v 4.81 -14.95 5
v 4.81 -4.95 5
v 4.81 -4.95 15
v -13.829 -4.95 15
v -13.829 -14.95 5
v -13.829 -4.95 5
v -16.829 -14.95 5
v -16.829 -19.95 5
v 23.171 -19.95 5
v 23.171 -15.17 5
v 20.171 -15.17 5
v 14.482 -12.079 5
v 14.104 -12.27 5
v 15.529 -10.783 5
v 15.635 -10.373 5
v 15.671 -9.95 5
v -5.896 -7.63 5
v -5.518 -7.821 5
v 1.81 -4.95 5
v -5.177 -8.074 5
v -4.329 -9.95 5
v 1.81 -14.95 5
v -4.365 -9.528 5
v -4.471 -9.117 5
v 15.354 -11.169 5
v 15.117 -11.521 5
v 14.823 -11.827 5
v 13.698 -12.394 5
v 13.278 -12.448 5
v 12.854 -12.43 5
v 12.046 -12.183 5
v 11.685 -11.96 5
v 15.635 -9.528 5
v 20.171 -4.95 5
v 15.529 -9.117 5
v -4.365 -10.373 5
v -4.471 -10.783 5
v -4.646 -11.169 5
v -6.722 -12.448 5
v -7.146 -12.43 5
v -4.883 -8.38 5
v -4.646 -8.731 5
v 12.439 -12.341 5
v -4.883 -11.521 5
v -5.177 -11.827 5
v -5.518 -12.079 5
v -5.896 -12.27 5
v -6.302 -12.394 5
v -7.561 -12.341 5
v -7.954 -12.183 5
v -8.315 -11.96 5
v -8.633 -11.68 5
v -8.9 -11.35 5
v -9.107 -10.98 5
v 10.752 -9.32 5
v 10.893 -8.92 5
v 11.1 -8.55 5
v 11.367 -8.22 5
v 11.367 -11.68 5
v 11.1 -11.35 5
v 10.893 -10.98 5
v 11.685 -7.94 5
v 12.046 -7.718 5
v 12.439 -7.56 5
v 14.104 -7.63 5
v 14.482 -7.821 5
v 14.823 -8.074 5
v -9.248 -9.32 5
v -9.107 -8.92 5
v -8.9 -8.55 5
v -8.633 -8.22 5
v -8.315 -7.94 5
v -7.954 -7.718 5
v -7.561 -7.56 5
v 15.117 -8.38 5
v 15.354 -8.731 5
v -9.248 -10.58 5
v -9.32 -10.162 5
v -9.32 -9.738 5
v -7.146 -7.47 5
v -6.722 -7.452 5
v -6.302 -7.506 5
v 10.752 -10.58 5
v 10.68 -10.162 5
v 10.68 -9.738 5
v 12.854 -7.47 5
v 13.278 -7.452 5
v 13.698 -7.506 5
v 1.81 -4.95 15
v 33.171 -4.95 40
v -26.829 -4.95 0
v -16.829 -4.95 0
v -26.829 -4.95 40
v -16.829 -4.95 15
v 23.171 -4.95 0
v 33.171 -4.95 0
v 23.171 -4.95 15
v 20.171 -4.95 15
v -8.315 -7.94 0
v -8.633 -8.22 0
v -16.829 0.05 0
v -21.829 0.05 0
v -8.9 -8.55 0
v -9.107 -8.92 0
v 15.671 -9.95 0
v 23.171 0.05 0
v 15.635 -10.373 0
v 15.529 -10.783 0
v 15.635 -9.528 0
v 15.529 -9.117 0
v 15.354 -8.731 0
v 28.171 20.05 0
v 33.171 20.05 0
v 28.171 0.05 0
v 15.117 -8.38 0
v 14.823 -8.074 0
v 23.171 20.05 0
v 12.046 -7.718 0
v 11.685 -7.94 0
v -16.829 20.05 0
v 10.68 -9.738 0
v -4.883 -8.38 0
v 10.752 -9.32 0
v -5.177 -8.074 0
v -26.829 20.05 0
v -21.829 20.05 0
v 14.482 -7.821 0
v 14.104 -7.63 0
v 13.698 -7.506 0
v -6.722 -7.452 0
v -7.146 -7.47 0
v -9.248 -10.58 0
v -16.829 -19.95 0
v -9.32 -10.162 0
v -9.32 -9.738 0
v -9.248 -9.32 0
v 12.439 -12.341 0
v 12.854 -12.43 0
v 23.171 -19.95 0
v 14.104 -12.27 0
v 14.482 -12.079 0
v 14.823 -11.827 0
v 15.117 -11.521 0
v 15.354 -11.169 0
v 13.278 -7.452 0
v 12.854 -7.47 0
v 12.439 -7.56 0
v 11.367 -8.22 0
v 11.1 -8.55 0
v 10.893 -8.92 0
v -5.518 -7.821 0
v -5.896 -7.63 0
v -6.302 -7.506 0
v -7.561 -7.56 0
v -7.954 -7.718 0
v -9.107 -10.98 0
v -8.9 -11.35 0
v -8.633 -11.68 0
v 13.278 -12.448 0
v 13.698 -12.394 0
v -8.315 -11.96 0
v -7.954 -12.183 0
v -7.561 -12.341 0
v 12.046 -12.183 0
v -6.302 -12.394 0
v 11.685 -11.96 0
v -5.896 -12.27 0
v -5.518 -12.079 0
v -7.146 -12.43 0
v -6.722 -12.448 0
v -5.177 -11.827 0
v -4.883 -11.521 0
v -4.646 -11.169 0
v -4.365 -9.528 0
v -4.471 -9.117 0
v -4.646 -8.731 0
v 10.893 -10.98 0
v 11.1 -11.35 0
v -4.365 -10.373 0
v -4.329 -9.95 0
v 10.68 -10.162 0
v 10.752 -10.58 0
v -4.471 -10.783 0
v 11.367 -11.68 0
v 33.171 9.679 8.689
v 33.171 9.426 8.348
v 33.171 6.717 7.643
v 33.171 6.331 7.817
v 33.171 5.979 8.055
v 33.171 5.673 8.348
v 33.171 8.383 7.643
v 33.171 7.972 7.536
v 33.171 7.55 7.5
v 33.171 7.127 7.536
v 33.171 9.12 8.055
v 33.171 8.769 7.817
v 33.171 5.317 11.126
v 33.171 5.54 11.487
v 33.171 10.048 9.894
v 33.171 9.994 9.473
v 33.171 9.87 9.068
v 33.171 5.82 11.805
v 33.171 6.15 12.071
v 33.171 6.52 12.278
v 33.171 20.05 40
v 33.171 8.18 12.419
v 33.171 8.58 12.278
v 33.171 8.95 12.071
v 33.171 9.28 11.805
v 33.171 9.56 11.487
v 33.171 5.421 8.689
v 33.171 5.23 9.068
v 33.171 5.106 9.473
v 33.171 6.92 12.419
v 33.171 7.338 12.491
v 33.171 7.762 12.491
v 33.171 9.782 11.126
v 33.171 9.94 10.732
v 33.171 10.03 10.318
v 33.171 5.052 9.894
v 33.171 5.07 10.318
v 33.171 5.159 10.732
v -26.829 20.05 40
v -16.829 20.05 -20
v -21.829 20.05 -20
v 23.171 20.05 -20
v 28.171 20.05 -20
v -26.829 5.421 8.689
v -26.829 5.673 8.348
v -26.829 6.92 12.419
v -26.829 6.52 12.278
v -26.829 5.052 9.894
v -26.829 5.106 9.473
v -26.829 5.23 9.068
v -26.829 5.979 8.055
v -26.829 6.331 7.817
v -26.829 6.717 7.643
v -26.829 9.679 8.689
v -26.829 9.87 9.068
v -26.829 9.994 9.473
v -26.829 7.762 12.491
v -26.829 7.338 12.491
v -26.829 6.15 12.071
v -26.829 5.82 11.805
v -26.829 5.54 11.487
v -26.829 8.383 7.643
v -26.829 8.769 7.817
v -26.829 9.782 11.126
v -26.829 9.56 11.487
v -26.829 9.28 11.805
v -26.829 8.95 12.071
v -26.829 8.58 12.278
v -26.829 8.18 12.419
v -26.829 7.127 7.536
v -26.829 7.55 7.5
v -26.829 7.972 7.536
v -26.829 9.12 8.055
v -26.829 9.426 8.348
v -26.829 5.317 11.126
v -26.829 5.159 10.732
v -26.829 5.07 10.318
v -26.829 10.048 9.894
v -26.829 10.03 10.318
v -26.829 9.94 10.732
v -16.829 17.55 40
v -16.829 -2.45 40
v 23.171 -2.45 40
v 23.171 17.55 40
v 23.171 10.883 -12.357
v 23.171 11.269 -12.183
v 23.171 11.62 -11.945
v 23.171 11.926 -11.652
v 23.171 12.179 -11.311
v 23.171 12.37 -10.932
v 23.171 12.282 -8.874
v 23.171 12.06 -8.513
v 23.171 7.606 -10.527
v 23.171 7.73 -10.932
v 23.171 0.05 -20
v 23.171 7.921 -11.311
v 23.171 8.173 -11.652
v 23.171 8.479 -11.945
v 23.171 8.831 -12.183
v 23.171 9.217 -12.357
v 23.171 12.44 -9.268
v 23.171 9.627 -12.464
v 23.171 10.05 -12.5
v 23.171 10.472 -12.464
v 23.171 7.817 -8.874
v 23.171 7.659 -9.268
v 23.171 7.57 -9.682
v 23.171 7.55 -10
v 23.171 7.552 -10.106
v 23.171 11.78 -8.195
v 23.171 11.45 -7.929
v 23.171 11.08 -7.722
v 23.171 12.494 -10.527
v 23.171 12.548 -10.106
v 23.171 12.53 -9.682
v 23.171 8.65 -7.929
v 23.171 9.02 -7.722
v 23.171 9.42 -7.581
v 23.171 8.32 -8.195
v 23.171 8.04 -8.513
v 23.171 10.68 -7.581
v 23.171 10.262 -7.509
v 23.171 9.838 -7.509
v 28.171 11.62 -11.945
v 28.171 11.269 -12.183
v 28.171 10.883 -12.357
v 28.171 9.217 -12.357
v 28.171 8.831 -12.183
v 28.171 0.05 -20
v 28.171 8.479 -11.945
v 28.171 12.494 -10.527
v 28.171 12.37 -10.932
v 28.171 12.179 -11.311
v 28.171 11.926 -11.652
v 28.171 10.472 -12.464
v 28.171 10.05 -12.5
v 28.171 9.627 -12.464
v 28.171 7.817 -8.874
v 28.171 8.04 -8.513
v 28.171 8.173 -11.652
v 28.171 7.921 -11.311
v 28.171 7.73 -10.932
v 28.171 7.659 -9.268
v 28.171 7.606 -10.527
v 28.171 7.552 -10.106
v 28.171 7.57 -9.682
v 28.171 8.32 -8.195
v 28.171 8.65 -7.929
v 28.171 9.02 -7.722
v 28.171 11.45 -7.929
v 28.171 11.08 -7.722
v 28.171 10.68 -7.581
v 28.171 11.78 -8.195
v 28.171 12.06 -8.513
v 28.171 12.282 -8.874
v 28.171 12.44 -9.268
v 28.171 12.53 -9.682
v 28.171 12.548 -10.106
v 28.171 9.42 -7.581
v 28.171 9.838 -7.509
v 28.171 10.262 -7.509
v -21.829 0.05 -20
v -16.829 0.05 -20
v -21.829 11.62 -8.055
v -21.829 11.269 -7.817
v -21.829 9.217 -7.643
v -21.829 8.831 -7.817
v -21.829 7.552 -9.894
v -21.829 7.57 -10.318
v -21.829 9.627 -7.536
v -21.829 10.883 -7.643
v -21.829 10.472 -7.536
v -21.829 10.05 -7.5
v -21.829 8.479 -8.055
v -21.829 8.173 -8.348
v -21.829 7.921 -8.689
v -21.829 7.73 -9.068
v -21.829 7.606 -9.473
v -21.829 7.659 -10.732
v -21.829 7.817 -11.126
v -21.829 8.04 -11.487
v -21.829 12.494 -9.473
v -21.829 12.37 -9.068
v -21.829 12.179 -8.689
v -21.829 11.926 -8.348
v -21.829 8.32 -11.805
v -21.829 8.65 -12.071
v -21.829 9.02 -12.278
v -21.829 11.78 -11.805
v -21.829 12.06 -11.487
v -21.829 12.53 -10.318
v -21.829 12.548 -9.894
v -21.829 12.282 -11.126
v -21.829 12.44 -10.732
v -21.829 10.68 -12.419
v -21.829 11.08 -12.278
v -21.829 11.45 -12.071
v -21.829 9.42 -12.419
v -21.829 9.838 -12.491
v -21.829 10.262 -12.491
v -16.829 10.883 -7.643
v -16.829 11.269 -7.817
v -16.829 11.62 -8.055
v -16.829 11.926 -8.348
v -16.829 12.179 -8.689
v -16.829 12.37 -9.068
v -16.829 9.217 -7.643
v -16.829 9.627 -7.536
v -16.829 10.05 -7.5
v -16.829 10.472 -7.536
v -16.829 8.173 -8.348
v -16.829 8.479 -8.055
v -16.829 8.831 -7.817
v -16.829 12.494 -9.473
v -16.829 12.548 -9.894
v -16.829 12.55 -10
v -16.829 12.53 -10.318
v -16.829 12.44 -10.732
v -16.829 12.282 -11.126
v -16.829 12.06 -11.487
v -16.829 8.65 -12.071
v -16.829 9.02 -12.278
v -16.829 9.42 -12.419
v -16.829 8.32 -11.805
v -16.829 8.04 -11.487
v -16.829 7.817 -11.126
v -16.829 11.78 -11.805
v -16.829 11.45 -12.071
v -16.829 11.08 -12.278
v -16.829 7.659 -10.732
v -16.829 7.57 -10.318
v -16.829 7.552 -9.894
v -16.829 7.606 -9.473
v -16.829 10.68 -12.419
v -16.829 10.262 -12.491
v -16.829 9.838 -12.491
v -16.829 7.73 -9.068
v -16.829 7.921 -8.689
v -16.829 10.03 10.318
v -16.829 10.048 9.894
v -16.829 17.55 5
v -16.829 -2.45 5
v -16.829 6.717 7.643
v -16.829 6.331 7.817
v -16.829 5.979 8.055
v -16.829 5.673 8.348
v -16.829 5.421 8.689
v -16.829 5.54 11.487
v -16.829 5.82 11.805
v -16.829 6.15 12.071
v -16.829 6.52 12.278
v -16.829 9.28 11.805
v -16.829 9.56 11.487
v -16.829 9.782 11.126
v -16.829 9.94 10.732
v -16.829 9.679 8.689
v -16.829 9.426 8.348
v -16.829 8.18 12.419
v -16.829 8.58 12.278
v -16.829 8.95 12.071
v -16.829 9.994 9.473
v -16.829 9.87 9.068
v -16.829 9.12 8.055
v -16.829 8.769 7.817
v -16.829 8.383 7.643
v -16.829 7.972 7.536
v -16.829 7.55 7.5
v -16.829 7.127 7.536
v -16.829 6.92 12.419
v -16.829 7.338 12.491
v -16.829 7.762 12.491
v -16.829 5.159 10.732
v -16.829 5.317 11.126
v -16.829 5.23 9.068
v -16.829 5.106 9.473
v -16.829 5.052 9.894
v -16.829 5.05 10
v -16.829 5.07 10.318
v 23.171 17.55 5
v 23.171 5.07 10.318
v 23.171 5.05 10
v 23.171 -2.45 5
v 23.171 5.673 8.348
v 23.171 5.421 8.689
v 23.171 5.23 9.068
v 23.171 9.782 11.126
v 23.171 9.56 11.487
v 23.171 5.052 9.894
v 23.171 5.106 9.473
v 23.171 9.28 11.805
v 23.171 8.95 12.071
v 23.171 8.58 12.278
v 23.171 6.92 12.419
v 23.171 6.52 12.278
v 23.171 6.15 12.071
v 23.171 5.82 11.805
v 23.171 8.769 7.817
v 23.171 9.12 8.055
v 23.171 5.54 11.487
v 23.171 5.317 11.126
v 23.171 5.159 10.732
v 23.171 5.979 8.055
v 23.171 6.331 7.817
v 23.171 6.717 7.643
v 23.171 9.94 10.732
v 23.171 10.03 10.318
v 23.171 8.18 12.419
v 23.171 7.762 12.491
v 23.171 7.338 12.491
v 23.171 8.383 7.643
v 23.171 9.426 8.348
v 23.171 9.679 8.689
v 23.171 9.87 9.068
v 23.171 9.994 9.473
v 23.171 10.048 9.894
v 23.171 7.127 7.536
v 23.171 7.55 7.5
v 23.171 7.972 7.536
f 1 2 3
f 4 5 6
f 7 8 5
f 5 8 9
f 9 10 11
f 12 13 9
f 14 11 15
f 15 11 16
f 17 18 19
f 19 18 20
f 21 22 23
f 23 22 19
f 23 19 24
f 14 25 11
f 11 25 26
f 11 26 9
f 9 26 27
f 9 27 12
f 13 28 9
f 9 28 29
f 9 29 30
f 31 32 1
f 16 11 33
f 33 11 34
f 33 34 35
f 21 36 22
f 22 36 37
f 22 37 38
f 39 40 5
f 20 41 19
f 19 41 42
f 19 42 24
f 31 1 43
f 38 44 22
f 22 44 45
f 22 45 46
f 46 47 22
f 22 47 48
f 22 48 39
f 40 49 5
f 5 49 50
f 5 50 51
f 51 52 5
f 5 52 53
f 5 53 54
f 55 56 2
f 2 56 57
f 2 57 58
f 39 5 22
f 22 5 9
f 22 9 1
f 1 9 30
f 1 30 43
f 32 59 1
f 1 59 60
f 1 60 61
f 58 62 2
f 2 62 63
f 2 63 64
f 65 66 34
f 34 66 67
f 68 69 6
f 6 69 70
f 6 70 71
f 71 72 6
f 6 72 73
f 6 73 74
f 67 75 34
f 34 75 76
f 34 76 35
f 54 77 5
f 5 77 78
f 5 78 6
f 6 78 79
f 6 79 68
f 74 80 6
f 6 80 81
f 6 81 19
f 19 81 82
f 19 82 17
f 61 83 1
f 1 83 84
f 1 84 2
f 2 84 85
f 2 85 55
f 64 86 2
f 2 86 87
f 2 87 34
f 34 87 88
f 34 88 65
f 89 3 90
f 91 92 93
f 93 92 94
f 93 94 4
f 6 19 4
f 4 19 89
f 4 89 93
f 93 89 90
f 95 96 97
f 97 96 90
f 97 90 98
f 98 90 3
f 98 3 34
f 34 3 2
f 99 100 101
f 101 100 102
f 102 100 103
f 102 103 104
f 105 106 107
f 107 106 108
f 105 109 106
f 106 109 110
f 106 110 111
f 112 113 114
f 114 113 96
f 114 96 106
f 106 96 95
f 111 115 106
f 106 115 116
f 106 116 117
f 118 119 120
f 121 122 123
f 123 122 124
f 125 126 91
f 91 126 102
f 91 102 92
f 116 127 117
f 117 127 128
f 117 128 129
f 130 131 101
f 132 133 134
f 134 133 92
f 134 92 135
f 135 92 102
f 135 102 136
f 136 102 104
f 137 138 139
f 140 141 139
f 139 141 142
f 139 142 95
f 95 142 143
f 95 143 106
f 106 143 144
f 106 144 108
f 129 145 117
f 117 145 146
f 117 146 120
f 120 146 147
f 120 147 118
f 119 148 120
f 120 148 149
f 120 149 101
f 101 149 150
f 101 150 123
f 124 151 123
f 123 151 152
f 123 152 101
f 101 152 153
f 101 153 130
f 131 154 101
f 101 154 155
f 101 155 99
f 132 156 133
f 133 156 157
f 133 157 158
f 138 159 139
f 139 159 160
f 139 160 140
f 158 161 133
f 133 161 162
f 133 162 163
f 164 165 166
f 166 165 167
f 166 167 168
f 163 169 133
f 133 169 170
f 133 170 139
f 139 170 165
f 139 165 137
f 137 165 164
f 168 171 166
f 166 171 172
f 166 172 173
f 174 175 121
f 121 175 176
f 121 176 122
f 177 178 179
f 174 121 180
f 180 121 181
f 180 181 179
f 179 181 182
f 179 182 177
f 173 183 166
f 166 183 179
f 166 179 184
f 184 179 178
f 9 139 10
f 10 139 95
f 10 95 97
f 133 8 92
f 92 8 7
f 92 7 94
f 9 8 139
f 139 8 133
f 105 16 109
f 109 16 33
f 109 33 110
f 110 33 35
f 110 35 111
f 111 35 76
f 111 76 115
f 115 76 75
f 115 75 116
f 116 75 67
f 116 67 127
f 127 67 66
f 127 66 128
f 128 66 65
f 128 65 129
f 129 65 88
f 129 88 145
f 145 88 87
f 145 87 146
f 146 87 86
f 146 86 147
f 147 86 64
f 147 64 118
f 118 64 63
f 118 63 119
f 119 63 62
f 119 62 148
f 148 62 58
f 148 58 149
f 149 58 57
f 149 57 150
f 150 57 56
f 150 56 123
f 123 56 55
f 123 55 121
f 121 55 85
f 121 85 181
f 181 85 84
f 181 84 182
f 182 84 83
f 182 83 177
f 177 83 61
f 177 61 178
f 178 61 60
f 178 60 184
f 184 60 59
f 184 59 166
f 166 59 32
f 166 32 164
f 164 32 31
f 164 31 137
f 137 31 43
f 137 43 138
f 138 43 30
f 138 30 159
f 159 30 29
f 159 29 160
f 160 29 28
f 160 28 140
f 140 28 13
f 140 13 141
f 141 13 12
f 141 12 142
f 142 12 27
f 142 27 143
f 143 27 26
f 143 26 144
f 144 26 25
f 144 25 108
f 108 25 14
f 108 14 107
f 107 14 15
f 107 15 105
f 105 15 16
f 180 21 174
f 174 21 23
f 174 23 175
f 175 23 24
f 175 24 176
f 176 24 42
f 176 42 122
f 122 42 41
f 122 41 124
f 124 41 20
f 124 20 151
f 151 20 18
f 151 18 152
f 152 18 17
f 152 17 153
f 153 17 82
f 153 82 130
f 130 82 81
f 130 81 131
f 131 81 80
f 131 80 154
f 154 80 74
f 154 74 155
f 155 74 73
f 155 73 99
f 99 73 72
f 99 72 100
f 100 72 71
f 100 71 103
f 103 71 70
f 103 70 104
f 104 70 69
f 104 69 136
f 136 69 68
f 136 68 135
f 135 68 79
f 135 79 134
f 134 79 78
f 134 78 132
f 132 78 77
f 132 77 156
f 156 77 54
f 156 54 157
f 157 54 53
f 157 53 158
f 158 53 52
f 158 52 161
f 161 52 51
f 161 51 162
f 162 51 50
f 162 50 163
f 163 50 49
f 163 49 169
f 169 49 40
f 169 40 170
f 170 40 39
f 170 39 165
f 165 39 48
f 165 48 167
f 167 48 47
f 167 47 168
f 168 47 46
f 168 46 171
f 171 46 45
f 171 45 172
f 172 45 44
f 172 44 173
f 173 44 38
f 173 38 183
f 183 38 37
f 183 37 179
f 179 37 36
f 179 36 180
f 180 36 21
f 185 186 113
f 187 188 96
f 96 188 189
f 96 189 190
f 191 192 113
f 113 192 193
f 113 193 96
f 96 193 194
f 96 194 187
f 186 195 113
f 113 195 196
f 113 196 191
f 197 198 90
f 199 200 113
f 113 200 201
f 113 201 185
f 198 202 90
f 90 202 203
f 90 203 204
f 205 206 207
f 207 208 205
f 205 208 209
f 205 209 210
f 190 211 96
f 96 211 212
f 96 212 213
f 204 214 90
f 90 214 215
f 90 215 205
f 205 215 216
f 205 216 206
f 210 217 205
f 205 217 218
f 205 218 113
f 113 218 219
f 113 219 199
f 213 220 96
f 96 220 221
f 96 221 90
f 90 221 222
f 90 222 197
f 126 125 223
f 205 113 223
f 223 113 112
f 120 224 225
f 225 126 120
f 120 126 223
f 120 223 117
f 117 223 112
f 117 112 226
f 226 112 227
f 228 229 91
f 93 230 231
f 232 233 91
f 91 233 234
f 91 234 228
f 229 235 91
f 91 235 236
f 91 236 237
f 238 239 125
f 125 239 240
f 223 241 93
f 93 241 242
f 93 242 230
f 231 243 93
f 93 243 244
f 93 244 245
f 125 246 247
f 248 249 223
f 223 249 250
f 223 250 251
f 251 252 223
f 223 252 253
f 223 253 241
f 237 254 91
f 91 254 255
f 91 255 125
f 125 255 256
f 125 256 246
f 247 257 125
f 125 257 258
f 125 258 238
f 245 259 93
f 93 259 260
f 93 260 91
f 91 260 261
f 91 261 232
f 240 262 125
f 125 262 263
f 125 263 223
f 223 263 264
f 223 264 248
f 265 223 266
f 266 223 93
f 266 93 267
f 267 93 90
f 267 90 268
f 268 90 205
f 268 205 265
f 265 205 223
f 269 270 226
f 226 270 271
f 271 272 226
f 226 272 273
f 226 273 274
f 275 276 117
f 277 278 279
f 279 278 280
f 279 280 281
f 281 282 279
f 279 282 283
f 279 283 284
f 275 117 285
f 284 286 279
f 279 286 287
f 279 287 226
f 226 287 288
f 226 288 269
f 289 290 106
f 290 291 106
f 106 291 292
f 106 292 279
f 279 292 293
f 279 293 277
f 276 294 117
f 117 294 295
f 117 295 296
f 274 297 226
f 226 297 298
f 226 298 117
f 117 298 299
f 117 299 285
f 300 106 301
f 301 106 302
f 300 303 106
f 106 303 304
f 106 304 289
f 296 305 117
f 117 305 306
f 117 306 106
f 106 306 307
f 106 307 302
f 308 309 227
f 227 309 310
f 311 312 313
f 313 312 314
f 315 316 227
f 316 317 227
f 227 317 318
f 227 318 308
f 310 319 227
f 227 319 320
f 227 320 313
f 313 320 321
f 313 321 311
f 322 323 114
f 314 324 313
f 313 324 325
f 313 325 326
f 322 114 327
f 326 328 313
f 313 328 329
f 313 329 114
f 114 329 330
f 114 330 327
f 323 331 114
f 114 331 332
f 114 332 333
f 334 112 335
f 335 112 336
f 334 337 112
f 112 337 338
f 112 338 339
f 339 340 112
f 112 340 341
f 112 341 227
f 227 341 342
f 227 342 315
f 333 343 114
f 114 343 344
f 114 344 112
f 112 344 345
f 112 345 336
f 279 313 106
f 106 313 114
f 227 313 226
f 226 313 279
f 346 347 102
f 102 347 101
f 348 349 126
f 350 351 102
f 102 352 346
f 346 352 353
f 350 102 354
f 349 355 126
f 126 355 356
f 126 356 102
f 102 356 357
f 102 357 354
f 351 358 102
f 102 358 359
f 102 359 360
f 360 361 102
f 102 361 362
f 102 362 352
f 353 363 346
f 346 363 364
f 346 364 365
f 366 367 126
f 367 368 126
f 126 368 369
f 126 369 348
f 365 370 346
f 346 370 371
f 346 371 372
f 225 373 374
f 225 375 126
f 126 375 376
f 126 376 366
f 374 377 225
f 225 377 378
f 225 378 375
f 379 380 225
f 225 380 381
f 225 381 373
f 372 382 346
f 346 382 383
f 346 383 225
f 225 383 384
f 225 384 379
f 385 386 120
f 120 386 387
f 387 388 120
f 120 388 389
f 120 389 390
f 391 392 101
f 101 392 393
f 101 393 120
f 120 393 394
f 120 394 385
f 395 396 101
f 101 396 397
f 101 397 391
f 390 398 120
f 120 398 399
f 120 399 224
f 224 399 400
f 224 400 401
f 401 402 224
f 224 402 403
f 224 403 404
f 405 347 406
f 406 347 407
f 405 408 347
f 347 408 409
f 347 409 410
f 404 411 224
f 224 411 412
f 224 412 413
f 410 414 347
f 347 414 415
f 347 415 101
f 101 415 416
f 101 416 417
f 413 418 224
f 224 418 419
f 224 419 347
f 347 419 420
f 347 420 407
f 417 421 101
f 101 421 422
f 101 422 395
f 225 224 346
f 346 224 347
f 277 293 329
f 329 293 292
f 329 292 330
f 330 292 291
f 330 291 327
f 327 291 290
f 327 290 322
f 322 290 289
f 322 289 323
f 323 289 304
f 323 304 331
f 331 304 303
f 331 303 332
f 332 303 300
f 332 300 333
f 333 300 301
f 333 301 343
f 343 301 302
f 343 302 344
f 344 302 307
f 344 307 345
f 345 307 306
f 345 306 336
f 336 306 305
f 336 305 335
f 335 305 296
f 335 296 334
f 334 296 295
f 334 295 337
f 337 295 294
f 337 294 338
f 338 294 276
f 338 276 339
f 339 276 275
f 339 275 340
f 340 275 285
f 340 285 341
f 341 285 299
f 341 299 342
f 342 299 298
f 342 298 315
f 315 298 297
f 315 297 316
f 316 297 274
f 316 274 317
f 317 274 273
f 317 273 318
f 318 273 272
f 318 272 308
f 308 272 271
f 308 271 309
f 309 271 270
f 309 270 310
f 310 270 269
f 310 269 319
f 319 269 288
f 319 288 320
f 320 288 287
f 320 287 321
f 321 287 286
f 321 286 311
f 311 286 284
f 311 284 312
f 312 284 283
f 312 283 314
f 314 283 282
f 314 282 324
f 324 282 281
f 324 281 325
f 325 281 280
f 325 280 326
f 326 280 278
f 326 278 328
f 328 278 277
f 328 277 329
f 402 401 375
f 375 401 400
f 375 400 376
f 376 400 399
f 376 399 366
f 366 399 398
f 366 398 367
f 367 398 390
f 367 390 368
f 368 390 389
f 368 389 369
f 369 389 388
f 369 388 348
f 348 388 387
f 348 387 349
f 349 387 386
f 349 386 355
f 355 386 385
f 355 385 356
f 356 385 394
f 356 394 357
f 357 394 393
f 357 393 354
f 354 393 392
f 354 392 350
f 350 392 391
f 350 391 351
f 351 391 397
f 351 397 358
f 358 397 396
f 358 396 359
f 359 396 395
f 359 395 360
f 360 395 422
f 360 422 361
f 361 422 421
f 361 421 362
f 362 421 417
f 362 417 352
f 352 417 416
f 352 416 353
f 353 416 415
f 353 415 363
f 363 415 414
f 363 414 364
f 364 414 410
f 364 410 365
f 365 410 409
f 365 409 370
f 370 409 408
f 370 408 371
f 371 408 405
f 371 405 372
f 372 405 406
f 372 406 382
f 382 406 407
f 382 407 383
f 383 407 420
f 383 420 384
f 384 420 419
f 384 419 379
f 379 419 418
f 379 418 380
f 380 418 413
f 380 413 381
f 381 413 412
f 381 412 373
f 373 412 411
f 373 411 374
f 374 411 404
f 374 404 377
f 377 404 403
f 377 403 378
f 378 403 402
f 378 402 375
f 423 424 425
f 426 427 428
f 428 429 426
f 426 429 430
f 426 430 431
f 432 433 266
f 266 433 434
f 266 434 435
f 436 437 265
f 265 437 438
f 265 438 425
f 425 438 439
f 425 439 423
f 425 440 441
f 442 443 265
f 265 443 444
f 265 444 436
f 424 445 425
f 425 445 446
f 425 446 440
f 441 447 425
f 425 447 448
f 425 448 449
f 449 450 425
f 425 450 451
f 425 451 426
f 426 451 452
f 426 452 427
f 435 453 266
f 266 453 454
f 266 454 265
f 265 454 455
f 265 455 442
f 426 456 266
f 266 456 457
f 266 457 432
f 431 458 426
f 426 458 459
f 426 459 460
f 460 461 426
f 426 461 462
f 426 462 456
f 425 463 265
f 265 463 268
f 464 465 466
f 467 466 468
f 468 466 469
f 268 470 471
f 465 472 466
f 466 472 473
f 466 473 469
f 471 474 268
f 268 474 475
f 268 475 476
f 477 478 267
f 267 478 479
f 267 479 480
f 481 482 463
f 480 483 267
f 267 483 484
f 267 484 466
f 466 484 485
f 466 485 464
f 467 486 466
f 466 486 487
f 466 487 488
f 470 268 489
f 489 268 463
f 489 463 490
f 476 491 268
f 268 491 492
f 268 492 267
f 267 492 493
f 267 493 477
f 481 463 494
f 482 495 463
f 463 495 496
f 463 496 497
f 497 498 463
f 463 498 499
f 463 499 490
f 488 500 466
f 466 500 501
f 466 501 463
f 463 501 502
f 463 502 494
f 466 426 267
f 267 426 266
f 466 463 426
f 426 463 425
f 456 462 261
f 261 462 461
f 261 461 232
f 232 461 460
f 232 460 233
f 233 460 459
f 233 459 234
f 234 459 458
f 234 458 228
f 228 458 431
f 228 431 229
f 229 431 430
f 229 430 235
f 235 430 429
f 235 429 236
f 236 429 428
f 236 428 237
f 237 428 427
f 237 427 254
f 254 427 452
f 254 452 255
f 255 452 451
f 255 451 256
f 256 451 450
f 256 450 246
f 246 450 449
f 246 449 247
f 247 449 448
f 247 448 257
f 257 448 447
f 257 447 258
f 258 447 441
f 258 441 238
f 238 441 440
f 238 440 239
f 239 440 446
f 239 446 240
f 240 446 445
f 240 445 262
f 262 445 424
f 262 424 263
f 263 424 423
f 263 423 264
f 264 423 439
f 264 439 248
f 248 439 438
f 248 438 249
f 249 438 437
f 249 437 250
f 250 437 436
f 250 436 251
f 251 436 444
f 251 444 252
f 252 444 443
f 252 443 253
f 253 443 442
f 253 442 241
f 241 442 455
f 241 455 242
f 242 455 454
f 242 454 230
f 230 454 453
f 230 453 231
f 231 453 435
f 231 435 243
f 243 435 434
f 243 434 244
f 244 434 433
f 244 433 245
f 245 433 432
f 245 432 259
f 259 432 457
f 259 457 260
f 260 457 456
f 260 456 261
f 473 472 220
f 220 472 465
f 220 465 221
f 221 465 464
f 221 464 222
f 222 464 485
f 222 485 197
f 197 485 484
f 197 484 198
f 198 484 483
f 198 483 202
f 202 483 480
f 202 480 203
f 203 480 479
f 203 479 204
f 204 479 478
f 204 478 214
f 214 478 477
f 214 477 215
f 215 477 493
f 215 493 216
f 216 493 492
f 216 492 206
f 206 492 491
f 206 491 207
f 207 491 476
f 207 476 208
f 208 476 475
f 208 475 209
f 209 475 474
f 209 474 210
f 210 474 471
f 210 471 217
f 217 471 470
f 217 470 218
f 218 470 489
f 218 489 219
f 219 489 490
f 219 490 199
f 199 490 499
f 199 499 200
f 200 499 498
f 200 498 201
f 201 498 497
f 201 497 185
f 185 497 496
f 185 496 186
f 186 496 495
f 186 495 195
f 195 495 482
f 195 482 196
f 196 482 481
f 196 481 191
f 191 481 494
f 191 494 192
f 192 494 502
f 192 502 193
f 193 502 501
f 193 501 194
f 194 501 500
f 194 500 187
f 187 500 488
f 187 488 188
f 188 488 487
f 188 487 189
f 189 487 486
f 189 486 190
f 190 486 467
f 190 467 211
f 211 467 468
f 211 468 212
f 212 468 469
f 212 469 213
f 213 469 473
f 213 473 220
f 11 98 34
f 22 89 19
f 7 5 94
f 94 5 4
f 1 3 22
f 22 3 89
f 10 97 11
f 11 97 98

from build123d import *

# Parameters (mm, degrees)
ESQUISSE1_W                       = 40
ESQUISSE1_H                       = 15
BOSS_EXTRU_2_DEPTH                = 5
DIAM_TRE_DU_PER_AGE_5_0_5_1_D     = 5
DIAM_TRE_DU_PER_AGE_5_0_5_2_D     = 5
BOSS_EXTRU_3_DEPTH                = 40
ESQUISSE1_8_W                     = 5
ESQUISSE1_8_H                     = 20
BOSS_EXTRU_4_DEPTH                = 20
ESQUISSE1_9_W                     = 5
ESQUISSE1_9_H                     = 20
BOSS_EXTRU_5_DEPTH                = 20
DIAM_TRE_DU_PER_AGE_5_0_5_7_D     = 5
DIAM_TRE_DU_PER_AGE_5_0_5_7_DEPTH = 5
DIAM_TRE_DU_PER_AGE_5_0_5_8_D     = 5
DIAM_TRE_DU_PER_AGE_5_0_5_8_DEPTH = 5
ESQUISSE30_W                      = 40
ESQUISSE30_H                      = 20
ENL_V_MAT_EXTRU_1_DEPTH           = 35
DIAM_TRE_DU_PER_AGE_5_0_5_10_D    = 5
ESQUISSE37_W                      = 3
ESQUISSE37_H                      = 10
BOSS_EXTRU_6_DEPTH                = 10
ESQUISSE37_5_W                    = 3
ESQUISSE37_5_H                    = 10
ESQUISSE37_5_H_2                  = 10.219733904
BOSS_EXTRU_7_DEPTH                = 10
ENL_V_MAT_EXTRU_4_DEPTH           = 11
ENL_V_MAT_EXTRU_4_DEPTH_BACK      = 3
ENL_V_MAT_EXTRU_5_DEPTH           = 29.638558357
ENL_V_MAT_EXTRU_5_DEPTH_BACK      = 3
ENL_V_MAT_EXTRU_6_DEPTH           = 48
ENL_V_MAT_EXTRU_6_DEPTH_BACK      = 3


with BuildPart() as part:
    # Esquisse1 → Boss.-Extru.2 (new body)
    with BuildSketch(Plane.XY):
        with Locations((3.171437827, -12.450210199)):
            Rectangle(ESQUISSE1_W, ESQUISSE1_H)
    extrude(amount=BOSS_EXTRU_2_DEPTH)

    # Diamètre du perçage Ø5.0 (5)1 (through all)
    with Locations(Plane.XY.offset(5)):
        with Locations((13.171437827, -9.950210199)):
            Hole(DIAM_TRE_DU_PER_AGE_5_0_5_1_D / 2)

    # Diamètre du perçage Ø5.0 (5)2 (through all)
    with Locations(Plane.XY.offset(5)):
        with Locations((-6.828562173, -9.950210199)):
            Hole(DIAM_TRE_DU_PER_AGE_5_0_5_2_D / 2)

    # Esquisse1<6> → Boss.-Extru.3 (add)
    with BuildSketch(Plane.XY):
        Polygon((-16.828562173, 20.049789801), (23.171437827, 20.049789801), (28.171437827, 20.049789801), (33.171437827, 20.049789801), (33.171437827, -4.950210199), (23.171437827, -4.950210199), (-16.828562173, -4.950210199), (-26.828562173, -4.950210199), (-26.828562173, 20.049789801), (-21.828562173, 20.049789801), align=None)
    extrude(amount=BOSS_EXTRU_3_DEPTH)

    # Esquisse1<8> → Boss.-Extru.4 (add)
    with BuildSketch(Plane.XY):
        with Locations((25.671437827, 10.049789801)):
            Rectangle(ESQUISSE1_8_W, ESQUISSE1_8_H)
    extrude(amount=-BOSS_EXTRU_4_DEPTH)

    # Esquisse1<9> → Boss.-Extru.5 (add)
    with BuildSketch(Plane.XY):
        with Locations((-19.328562173, 10.049789801)):
            Rectangle(ESQUISSE1_9_W, ESQUISSE1_9_H)
    extrude(amount=-BOSS_EXTRU_5_DEPTH)

    # Diamètre du perçage Ø5.0 (5)7
    with Locations(Plane(origin=(28.171437827, 0, 0), x_dir=(0, 0, -1), z_dir=(1, 0, 0))):
        with Locations((10, 10.049789801)):
            Hole(DIAM_TRE_DU_PER_AGE_5_0_5_7_D / 2, depth=DIAM_TRE_DU_PER_AGE_5_0_5_7_DEPTH)

    # Diamètre du perçage Ø5.0 (5)8
    with Locations(Plane.ZY.offset(21.828562173)):
        with Locations((-10, 10.049789801)):
            Hole(DIAM_TRE_DU_PER_AGE_5_0_5_8_D / 2, depth=DIAM_TRE_DU_PER_AGE_5_0_5_8_DEPTH)

    # Esquisse30 → Enlèv. mat.-Extru.1 (cut)
    with BuildSketch(Plane.XY.offset(40)):
        with Locations((3.171437827, 7.549789801)):
            Rectangle(ESQUISSE30_W, ESQUISSE30_H)
    extrude(amount=-ENL_V_MAT_EXTRU_1_DEPTH, mode=Mode.SUBTRACT)

    # Diamètre du perçage Ø5.0 (5)10 (through all)
    with Locations(Plane(origin=(33.171437827, 0, 0), x_dir=(0, 0, -1), z_dir=(1, 0, 0))):
        with Locations((-10, 7.549789801)):
            Hole(DIAM_TRE_DU_PER_AGE_5_0_5_10_D / 2)

    # Esquisse37 → Boss.-Extru.6 (add)
    with BuildSketch(Plane.XY.offset(5)):
        with Locations((-15.328562173, -9.950210199)):
            Rectangle(ESQUISSE37_W, ESQUISSE37_H)
    extrude(amount=BOSS_EXTRU_6_DEPTH)

    # Esquisse37<5> → Boss.-Extru.7 (add)
    with BuildSketch(Plane.XY.offset(5)):
        with Locations((-15.328562173, -9.950210199)):
            Rectangle(ESQUISSE37_5_W, ESQUISSE37_5_H)
        with Locations((21.671437827, -10.060077151)):
            Rectangle(ESQUISSE37_5_W, ESQUISSE37_5_H_2)
        with Locations((3.309996184, -9.950210199)):
            Rectangle(ESQUISSE37_5_W, ESQUISSE37_5_H)
    extrude(amount=BOSS_EXTRU_7_DEPTH)

    # Esquisse38 → Enlèv. mat.-Extru.4 (cut, two sides)
    with BuildSketch(Plane.ZY.offset(16.828562173)) as enl_v_mat_extru_4_sk:
        Polygon((15, -14.950210199), (15, -4.950210199), (5, -14.950210199), align=None)
    extrude(amount=ENL_V_MAT_EXTRU_4_DEPTH, mode=Mode.SUBTRACT)
    extrude(enl_v_mat_extru_4_sk.sketch, amount=-ENL_V_MAT_EXTRU_4_DEPTH_BACK, mode=Mode.SUBTRACT)

    # Esquisse40 → Enlèv. mat.-Extru.5 (cut, two sides)
    with BuildSketch(Plane.ZY.offset(-1.809996184)) as enl_v_mat_extru_5_sk:
        Polygon((15, -14.950210199), (15, -4.950210199), (5, -14.950210199), align=None)
    extrude(amount=ENL_V_MAT_EXTRU_5_DEPTH, mode=Mode.SUBTRACT)
    extrude(enl_v_mat_extru_5_sk.sketch, amount=-ENL_V_MAT_EXTRU_5_DEPTH_BACK, mode=Mode.SUBTRACT)

    # Esquisse41 → Enlèv. mat.-Extru.6 (cut, two sides)
    with BuildSketch(Plane.ZY.offset(-20.171437827)) as enl_v_mat_extru_6_sk:
        Polygon((15, -15.169944103), (15, -4.950210199), (5, -15.169944103), align=None)
    extrude(amount=ENL_V_MAT_EXTRU_6_DEPTH, mode=Mode.SUBTRACT)
    extrude(enl_v_mat_extru_6_sk.sketch, amount=-ENL_V_MAT_EXTRU_6_DEPTH_BACK, mode=Mode.SUBTRACT)


solid = part.part
